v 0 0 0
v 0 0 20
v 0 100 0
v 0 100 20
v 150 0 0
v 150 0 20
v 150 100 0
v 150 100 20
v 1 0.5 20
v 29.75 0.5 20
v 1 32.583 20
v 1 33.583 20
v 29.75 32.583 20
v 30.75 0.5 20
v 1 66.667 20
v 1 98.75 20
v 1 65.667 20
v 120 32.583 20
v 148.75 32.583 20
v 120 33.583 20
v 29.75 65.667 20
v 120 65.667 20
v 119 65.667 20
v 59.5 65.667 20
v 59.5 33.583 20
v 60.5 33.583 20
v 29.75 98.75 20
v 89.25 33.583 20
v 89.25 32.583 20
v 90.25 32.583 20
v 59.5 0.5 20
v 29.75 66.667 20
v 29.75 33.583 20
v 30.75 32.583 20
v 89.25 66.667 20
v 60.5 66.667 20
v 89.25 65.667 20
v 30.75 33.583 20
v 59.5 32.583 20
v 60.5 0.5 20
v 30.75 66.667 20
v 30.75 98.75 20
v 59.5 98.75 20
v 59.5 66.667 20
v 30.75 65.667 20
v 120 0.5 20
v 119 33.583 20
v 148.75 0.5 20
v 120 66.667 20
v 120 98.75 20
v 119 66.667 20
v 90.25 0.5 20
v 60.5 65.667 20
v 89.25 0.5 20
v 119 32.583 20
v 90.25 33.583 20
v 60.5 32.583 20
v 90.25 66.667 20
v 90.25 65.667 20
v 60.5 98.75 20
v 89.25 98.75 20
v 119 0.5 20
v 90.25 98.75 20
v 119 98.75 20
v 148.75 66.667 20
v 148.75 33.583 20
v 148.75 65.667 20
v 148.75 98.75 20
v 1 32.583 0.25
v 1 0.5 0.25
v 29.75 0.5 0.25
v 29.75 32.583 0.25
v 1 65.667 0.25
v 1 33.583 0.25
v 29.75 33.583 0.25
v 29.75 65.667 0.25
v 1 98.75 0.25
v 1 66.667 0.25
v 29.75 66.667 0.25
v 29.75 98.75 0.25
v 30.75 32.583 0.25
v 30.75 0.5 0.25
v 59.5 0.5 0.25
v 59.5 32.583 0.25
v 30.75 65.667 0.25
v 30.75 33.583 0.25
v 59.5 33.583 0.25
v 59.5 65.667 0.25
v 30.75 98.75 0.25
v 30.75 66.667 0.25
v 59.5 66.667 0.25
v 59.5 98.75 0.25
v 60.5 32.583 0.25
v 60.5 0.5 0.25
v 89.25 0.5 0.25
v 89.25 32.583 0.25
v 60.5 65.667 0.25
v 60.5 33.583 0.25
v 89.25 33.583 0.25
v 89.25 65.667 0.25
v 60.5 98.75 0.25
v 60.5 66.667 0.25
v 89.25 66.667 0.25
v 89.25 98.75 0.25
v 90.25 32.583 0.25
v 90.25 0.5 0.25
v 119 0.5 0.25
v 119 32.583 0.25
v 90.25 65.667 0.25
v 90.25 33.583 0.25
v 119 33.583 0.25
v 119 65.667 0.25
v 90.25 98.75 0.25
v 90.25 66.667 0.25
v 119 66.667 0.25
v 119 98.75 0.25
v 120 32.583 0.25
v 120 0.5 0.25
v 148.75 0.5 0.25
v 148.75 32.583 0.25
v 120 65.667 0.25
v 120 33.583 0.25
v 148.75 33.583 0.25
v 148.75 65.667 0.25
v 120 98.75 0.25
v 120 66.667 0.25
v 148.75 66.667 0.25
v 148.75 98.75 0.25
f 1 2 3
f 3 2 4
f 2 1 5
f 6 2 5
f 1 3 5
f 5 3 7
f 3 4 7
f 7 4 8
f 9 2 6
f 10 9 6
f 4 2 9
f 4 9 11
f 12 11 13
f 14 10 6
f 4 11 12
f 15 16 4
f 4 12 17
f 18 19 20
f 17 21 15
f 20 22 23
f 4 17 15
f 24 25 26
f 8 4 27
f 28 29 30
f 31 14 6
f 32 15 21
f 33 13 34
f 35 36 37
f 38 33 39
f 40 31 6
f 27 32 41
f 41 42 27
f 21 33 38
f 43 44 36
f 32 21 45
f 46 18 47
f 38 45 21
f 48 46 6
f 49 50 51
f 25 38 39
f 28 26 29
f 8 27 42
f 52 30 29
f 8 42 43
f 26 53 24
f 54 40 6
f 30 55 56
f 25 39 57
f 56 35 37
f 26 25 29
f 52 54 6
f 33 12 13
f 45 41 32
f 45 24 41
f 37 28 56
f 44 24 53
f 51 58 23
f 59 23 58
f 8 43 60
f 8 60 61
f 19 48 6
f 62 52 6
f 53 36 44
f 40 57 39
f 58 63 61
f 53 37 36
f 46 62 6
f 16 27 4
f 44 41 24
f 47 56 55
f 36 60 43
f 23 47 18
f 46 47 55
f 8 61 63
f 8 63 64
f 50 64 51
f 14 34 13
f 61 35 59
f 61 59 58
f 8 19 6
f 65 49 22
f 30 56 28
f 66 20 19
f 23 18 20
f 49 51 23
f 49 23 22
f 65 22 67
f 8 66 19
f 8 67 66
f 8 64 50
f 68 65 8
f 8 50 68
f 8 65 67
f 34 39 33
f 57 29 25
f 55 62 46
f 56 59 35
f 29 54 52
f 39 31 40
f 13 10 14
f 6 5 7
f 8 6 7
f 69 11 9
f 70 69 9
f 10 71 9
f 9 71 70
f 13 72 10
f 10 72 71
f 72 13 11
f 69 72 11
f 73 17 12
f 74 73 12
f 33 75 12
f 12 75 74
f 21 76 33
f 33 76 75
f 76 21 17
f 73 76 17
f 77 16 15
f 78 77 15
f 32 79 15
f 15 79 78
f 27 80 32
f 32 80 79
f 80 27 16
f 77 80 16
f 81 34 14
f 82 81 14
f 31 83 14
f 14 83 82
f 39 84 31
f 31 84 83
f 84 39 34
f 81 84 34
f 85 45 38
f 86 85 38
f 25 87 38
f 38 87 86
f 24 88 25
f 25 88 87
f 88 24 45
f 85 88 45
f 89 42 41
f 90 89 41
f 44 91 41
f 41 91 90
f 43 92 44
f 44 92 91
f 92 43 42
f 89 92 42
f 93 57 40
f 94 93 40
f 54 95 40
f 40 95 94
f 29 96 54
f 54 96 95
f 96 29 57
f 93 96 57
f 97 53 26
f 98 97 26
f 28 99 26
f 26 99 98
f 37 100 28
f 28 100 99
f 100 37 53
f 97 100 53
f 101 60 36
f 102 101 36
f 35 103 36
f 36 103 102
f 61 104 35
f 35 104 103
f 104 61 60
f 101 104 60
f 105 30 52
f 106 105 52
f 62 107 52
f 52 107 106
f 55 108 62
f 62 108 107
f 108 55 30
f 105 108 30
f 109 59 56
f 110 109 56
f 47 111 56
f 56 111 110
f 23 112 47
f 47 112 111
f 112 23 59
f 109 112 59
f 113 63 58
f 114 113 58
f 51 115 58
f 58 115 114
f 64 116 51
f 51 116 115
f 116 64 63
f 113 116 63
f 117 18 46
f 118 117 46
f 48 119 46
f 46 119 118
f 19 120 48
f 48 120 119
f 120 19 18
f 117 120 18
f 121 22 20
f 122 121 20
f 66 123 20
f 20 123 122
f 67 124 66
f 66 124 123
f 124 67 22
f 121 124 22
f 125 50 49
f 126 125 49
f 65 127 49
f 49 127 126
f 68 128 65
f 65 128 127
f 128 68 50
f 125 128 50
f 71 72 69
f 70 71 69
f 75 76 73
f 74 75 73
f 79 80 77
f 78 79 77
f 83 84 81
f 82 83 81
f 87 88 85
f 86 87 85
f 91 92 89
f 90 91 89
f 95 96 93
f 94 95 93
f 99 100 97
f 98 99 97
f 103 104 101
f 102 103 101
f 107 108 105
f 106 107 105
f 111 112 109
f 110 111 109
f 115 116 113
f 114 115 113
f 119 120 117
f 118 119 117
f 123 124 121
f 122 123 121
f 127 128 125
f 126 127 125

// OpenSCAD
module MultiChamberBox(size=[150, 100, 20], wall=0.25, numXBoxes=5, numYBoxes=3)
{
    holeSize = [(size[0] / numXBoxes) - (wall * numXBoxes),
                (size[1] / numYBoxes) - (wall * numXBoxes),
                 size[2]];

    difference()
    {
        cube(size);

        for (x = [0 : numXBoxes - 1])
        {
            for (y = [0 : numYBoxes - 1])
            {
                color(rands(0, 1.0, 3))
                translate([wall*(numXBoxes - x - 1) + size[0] / numXBoxes * x,
                           wall*(numYBoxes - y - 1) + size[1] / numYBoxes * y,
                           wall])
                cube(holeSize);
            }
        }
    }
}

MultiChamberBox();
